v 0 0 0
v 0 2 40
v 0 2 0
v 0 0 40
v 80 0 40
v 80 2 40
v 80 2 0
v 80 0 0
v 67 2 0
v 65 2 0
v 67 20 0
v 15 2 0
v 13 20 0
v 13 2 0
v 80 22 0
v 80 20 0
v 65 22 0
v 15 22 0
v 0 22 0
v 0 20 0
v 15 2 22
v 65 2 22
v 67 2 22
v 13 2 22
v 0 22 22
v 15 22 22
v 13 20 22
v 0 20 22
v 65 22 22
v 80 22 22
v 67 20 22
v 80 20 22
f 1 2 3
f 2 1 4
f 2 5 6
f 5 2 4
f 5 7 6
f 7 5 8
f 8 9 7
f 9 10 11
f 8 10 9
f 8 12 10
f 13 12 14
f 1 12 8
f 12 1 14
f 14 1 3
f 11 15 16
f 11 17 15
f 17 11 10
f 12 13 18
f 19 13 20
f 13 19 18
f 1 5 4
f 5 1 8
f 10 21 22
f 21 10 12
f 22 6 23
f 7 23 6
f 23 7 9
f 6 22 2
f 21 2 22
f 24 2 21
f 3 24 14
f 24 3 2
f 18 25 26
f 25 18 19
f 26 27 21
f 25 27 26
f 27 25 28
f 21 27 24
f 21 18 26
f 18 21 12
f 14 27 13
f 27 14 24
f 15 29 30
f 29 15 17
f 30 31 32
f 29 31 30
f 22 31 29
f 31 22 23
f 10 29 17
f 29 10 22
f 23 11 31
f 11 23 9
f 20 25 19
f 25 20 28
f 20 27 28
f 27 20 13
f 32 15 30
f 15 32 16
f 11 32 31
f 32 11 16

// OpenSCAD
// file: hex_grid/hex_grid.scad
*hex_grid();

module hex_grid(size = [ 50, 30 ], wall = 1.5, hole_radius = 1.5) {
  hole_outer_radius = hole_radius;
  hole_inner_radius = hole_outer_radius * sqrt(3) / 2;

  hex_inner_radius = hole_inner_radius + wall / 2;
  hex_outer_radius = 2 * hex_inner_radius / sqrt(3);


  distance_between_hexes_centers = 2 * hex_inner_radius;
  x_distance = distance_between_hexes_centers * cos(30);
  y_distance = distance_between_hexes_centers * sin(30);

  x_hexes_count = ceil(size.x / (2 * x_distance));
  y_hexex_count = ceil(size.y / (4 * y_distance));

  module hex() {
    difference() {
      circle(hex_outer_radius, $fn = 6);
      circle(hole_outer_radius, $fn = 6);
    }
  }

  module column() {
    for (i = [0:y_hexex_count]) {
      translate([ 0, distance_between_hexes_centers * i ]) hex();
    }
  }

  module grid_quarter() {
    for (x = [0:x_hexes_count]) {
      translate([ x_distance * x, x % 2 == 0 ? 0 : -y_distance ]) column();
    }
  }

  module grid() {
    grid_quarter();
    mirror([ 0, 1, 0 ]) { grid_quarter(); }

    mirror([ 1, 0, 0 ]) {
      grid_quarter();
      mirror([ 0, 1, 0 ]) { grid_quarter(); }
    }
  }

  intersection() {
    grid();
    square(size, center = true);
  }
}
// main file
use <hex_grid/hex_grid.scad>;

$fn=400;

union() {
    cube([80, 2, 40]);
    
    color("red")
    translate([15,2,0])
    rotate([0,0,90])
    cube([20, 2, 22]);
    
    color("green")
    translate([67,2,0])
    rotate([0,0,90])
    cube([20, 2, 22]);
    
    color("black")
    translate([0,20,0])
    cube([13, 2, 22]);
    
    color("grey")
    translate([67,20,0])
    cube([13, 2, 22]);
    
}
